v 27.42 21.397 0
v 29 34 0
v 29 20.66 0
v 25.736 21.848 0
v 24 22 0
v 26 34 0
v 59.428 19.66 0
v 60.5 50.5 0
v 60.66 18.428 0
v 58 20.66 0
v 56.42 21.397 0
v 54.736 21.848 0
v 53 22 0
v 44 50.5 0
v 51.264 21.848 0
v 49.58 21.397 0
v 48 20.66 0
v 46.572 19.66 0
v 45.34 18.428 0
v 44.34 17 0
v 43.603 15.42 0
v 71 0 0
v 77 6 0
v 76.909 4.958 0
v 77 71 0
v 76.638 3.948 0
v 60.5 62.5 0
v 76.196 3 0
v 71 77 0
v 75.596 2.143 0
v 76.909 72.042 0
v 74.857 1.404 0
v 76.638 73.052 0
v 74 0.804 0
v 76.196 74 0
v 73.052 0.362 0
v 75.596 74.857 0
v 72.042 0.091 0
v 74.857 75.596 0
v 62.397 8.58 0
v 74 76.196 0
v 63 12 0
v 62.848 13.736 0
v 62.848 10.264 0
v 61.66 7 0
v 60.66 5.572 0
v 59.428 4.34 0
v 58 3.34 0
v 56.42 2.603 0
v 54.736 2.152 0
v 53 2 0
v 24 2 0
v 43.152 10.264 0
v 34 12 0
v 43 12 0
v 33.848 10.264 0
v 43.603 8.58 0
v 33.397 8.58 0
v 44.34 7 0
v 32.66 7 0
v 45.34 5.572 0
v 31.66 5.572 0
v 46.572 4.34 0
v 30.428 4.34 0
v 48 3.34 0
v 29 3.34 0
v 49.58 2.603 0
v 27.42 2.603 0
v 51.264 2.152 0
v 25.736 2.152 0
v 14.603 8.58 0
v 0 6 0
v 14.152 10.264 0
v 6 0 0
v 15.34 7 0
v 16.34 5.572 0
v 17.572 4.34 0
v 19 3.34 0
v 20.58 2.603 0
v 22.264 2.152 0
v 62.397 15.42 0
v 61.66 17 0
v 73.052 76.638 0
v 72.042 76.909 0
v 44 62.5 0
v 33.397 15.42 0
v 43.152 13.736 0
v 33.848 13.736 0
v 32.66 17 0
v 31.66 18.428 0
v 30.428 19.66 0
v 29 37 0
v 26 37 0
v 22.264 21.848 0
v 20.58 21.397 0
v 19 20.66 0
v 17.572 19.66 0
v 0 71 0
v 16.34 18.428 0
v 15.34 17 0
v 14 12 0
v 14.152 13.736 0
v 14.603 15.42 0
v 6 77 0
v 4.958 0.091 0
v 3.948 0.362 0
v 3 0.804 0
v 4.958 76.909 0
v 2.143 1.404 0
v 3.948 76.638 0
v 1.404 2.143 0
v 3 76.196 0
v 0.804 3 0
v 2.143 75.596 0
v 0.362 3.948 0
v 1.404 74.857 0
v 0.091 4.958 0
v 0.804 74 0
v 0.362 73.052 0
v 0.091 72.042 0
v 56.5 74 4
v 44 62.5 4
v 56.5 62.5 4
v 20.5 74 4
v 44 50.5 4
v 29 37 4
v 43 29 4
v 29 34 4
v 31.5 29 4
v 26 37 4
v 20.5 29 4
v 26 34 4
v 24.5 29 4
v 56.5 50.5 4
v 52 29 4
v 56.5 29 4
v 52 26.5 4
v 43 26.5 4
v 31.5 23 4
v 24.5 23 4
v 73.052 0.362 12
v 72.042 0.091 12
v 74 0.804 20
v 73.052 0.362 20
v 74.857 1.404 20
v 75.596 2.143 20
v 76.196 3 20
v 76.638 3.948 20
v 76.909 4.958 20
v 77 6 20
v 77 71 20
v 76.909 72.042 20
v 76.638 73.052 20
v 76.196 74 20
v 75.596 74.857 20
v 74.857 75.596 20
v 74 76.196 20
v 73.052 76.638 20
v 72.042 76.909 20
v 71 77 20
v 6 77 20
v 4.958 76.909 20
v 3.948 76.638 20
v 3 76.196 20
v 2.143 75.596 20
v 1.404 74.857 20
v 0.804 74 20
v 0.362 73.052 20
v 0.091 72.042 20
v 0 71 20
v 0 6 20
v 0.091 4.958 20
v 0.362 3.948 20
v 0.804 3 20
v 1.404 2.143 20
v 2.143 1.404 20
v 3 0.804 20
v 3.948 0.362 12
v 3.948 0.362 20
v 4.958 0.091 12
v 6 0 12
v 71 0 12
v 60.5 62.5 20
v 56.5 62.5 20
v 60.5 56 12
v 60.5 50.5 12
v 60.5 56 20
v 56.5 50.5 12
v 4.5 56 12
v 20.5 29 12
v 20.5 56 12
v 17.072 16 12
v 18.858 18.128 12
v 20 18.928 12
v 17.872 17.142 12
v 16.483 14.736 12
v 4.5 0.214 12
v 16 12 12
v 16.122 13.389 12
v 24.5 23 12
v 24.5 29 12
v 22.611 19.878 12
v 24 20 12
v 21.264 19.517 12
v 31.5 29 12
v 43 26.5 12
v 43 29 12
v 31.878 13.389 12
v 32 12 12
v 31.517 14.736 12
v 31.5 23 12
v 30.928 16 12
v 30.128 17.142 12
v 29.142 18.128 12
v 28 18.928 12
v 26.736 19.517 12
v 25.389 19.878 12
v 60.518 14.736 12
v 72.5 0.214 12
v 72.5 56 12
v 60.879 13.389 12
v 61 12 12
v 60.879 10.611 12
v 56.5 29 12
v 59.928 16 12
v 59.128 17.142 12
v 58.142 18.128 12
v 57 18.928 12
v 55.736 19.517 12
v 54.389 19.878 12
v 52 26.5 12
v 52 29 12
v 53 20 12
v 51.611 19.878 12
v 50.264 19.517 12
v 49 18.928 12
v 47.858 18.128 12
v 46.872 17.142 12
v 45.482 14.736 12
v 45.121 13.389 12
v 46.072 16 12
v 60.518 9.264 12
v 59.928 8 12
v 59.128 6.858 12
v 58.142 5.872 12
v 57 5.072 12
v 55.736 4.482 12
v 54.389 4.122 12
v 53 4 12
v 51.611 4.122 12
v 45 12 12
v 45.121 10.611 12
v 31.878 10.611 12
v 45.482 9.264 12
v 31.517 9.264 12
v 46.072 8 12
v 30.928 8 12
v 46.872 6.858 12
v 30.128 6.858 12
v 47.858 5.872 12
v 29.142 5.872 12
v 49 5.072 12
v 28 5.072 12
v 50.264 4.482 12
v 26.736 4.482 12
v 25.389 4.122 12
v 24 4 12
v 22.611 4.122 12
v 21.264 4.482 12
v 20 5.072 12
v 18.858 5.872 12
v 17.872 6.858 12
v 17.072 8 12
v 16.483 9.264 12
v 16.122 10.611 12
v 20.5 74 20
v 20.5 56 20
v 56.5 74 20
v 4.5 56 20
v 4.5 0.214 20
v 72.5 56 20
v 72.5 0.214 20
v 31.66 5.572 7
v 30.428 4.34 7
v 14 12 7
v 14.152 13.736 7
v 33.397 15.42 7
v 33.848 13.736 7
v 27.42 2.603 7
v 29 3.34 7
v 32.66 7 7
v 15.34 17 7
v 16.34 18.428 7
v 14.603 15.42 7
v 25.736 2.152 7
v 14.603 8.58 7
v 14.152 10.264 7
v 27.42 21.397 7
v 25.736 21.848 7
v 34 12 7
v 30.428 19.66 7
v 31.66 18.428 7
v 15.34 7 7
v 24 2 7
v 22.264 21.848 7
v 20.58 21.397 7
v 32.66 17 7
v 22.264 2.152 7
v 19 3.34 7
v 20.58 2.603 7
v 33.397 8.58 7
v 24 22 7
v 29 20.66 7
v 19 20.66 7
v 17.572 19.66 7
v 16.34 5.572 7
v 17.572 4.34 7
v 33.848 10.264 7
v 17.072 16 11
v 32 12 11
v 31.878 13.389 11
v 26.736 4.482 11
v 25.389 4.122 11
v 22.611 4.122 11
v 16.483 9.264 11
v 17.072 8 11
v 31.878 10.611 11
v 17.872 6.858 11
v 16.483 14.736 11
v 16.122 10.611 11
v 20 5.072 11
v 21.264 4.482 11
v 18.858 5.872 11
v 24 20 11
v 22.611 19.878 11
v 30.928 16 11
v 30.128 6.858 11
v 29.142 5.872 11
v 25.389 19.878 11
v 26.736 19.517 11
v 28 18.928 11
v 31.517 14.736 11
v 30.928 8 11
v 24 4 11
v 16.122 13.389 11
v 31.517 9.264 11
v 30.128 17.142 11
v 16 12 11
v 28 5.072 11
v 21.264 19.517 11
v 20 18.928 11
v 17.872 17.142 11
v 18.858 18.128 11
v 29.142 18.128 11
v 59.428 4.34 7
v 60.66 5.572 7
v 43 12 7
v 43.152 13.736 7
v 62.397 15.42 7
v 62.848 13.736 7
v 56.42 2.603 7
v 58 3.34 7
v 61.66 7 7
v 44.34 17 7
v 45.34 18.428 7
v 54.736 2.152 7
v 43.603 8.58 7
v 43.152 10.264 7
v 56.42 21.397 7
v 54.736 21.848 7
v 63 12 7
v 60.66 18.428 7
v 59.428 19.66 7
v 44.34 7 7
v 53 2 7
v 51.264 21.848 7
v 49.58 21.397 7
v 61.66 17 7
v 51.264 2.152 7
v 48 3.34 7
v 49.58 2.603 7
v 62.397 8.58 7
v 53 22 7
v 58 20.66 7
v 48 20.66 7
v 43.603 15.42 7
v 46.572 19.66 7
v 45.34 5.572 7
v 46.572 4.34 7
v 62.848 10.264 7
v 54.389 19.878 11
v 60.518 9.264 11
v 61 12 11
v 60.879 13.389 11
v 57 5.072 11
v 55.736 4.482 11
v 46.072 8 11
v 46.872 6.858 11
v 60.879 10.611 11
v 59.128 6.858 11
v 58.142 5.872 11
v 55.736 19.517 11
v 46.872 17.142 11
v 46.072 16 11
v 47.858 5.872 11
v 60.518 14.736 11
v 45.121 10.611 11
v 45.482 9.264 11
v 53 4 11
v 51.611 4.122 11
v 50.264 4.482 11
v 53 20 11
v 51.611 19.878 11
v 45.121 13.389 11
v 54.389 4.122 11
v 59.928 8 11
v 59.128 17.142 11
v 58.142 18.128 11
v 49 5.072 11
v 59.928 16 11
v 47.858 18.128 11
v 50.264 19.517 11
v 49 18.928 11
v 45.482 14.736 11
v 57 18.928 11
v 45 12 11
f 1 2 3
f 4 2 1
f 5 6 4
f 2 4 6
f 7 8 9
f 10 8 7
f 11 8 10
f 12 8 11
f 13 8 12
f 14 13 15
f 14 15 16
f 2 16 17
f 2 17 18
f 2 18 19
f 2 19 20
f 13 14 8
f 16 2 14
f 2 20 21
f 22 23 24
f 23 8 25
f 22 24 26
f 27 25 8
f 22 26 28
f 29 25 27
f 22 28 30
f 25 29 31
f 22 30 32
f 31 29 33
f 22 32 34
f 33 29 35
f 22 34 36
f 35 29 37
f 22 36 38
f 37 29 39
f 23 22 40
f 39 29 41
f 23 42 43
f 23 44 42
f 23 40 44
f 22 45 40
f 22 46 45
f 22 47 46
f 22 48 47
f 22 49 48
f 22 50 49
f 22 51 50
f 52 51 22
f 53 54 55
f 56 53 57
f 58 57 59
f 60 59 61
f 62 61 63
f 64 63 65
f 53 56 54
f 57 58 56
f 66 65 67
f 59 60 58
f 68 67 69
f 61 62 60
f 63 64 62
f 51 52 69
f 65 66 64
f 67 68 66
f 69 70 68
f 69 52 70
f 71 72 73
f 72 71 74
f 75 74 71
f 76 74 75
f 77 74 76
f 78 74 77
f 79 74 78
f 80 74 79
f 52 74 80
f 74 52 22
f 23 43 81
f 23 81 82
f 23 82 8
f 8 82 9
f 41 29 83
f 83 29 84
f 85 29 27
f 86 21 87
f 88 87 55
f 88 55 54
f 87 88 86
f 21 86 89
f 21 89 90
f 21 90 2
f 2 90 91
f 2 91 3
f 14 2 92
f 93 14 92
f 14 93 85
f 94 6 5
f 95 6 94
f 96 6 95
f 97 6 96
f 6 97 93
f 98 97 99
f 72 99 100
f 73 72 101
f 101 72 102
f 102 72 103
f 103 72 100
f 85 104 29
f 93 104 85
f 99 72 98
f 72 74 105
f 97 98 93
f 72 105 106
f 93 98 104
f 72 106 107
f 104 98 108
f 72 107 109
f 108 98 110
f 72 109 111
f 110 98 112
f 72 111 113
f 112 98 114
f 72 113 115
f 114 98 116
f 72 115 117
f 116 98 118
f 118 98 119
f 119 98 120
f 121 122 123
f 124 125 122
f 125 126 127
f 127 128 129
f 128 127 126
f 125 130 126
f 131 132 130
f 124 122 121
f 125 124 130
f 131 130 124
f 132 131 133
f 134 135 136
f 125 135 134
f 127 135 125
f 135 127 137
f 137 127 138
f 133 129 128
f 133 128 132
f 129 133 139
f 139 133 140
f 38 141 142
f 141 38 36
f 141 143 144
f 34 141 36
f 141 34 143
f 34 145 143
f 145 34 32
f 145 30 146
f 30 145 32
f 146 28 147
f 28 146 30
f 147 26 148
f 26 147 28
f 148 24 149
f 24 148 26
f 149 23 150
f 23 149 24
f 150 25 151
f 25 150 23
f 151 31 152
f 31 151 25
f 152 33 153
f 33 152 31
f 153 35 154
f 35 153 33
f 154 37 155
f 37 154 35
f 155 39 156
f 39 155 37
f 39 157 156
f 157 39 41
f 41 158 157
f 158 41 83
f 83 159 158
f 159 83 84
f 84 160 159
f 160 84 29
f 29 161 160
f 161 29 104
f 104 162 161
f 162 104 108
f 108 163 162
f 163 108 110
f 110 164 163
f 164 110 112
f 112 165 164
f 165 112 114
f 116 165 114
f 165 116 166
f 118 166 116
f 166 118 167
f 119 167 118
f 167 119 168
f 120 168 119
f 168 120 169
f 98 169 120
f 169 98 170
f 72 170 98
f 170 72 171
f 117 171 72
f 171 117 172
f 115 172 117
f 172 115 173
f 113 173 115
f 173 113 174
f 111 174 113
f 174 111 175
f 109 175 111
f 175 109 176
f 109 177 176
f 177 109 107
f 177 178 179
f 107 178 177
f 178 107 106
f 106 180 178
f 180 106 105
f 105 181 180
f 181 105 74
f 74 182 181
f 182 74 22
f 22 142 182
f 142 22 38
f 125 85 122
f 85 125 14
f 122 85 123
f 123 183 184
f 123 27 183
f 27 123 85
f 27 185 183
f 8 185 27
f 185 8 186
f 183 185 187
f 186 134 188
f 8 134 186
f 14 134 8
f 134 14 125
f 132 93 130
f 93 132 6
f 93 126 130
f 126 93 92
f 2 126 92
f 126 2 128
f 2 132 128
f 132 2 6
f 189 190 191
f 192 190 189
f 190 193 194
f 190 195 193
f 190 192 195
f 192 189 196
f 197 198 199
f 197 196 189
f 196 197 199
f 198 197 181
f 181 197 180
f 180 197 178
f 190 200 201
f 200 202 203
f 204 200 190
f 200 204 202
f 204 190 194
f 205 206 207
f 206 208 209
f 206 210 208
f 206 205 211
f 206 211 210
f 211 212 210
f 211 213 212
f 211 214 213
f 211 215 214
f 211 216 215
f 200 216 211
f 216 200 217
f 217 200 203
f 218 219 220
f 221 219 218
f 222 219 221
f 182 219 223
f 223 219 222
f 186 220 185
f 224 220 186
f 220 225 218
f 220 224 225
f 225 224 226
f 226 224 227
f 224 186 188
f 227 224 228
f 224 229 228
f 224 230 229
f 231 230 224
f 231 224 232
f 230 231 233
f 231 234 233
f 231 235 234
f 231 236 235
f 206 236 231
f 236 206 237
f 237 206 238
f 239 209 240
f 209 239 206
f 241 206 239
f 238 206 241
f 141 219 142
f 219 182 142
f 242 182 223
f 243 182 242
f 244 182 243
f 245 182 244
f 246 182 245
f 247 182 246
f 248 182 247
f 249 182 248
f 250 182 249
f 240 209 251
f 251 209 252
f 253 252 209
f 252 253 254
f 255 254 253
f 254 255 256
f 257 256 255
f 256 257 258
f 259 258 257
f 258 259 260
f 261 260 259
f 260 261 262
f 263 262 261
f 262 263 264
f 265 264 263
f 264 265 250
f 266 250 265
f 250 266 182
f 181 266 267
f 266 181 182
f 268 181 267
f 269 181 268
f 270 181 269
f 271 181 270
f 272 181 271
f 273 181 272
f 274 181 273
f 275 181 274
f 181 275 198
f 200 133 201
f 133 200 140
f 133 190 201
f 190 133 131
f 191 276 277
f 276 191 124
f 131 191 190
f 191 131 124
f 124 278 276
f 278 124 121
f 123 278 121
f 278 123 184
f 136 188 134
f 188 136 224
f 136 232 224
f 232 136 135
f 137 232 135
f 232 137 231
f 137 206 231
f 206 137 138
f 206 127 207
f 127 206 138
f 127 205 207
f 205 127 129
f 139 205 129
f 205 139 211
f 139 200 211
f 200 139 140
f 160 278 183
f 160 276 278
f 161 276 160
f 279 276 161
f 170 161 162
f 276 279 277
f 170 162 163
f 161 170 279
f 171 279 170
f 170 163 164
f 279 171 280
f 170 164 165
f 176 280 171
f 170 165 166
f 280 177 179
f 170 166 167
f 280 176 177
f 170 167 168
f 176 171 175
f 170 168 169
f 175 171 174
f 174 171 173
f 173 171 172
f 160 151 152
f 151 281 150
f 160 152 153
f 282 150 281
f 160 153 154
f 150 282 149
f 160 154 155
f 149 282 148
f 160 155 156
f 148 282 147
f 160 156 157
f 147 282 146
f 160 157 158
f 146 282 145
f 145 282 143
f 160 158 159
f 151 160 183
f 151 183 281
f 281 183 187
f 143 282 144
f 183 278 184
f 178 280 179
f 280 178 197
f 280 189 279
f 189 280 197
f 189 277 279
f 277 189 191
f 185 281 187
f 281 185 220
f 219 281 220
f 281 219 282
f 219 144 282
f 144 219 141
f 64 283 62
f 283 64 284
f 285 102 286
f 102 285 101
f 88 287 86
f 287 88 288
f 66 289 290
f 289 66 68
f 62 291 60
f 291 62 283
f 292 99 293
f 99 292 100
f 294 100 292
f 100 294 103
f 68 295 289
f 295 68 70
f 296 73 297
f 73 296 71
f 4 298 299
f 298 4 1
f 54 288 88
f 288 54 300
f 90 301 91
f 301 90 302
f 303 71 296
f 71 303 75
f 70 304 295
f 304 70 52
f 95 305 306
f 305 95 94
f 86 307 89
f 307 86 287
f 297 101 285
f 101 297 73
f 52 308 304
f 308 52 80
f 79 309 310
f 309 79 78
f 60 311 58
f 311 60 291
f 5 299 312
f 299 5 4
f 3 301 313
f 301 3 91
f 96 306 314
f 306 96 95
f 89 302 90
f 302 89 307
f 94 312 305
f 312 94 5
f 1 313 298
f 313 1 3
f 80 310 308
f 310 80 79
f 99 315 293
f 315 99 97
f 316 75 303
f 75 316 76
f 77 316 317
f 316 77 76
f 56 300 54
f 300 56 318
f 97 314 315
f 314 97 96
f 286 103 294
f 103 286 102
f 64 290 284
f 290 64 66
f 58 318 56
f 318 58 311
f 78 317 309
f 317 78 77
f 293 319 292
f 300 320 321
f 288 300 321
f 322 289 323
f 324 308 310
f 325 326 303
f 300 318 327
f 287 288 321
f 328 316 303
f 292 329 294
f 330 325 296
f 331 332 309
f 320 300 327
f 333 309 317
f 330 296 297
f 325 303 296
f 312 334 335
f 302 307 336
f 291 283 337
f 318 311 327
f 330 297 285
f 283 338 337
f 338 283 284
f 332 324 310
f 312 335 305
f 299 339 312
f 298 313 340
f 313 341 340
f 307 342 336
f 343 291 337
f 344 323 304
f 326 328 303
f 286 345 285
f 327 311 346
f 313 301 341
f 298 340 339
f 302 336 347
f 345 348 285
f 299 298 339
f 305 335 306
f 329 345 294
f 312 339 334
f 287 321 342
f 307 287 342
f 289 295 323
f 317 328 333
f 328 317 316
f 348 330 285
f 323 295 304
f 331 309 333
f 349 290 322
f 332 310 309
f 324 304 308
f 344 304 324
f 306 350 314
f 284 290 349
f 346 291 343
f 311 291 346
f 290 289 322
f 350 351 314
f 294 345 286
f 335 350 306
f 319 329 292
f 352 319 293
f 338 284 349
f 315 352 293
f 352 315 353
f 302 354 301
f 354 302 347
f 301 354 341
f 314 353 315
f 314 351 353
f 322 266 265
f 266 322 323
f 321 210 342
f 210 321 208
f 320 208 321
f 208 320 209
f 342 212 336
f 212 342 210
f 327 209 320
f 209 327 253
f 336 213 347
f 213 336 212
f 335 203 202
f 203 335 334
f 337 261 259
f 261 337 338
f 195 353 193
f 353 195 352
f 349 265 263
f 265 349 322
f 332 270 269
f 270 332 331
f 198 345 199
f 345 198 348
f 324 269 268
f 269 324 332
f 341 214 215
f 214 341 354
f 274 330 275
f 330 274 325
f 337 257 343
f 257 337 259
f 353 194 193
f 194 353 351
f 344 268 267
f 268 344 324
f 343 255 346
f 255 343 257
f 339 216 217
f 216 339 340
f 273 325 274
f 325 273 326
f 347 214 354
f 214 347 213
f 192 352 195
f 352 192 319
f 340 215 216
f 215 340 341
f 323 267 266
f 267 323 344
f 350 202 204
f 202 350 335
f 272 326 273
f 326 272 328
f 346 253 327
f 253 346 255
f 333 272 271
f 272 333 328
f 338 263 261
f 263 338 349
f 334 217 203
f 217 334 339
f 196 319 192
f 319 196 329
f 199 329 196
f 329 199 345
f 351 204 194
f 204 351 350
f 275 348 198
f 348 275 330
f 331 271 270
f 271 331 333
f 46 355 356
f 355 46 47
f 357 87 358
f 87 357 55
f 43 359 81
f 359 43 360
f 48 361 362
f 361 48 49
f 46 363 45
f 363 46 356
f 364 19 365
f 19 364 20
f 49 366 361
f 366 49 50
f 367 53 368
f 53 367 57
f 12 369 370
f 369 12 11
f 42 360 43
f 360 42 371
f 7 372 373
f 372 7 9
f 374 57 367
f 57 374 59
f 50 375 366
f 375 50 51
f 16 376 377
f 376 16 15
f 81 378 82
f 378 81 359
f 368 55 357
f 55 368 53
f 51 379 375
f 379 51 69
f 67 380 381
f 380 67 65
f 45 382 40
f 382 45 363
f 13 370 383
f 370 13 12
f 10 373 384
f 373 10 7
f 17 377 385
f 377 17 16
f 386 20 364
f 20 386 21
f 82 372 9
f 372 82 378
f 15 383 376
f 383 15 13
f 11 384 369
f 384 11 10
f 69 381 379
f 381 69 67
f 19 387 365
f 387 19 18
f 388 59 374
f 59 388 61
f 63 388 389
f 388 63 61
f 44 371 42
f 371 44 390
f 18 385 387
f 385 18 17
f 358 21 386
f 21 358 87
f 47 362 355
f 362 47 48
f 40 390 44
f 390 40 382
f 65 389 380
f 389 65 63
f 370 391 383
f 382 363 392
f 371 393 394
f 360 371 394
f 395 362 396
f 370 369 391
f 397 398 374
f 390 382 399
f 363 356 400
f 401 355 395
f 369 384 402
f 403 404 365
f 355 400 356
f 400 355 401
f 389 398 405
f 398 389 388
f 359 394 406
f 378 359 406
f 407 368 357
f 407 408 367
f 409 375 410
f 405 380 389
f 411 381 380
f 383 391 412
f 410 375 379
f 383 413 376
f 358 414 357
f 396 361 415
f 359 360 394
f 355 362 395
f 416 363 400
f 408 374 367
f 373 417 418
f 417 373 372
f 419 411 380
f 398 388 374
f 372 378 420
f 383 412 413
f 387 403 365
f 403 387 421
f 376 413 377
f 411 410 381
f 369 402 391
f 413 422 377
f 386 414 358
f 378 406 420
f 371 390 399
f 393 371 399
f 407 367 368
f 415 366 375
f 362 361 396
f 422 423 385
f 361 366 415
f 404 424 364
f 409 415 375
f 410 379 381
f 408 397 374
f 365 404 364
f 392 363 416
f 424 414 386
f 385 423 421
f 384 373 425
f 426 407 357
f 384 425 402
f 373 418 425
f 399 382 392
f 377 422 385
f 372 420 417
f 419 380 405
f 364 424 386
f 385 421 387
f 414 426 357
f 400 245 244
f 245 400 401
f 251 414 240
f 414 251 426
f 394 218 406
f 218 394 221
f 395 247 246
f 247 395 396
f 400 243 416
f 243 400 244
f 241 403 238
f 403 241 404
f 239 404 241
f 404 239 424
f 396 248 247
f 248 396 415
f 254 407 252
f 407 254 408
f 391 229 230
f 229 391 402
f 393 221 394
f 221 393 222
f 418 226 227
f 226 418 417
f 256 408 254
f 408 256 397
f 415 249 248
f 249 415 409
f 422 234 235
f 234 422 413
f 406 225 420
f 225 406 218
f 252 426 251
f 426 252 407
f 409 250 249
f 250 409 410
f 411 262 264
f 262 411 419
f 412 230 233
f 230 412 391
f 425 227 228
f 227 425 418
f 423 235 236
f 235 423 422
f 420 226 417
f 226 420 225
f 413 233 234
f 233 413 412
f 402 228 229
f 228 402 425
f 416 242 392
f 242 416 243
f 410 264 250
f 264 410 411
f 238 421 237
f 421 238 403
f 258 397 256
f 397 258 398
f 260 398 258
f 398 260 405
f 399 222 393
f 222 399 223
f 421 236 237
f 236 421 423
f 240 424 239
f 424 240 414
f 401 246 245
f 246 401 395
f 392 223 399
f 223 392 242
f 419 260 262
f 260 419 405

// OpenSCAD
// CC BY-SA, FHNW (University of Applied Sciences and Arts Northwestern Switzerland)

$fn = 36;

layer = 3; // 0-3
r = .1;

module layer3d(layer) {
difference() {
  hull() {
    translate([6, 6]) {
      translate([0, 0]) {
        circle(6);
      }
      translate([77 - 2 * 6, 0]) {
        circle(6);
      }
      translate([77 - 2 * 6, 77 - 2 * 6]) {
        circle(6);
      }
      translate([0, 77 - 2 * 6]) {
        circle(6);
      }
    }
  }
    if (layer >= 0) {
      translate([44, 77.5 - 15 - 12]) {
        square([16.5, 12]);
      }
      translate([26, 77 - 40 - 3]) {
        square([3, 3]);
      }
    }
    if (layer >= 1) {
      translate([20.5, 77 - 45 - 3]) {
        square([36, 45]);
      }
      translate([25 - 0.5, 77 - 45 - 3 - 6]) {
        square([7, 6]);
      }
      translate([20.5 + 36 - 5 - 8.5, 77 - 45 - 3 - 2.5]) {
        square([9, 2.5]);
      }
    }
    if (layer >= 2) {
      translate([(77 - 68) / 2, 0]) {
        square([68, 56]);
      }
    }
  }
}

difference() {
  union() {
    translate([0, 0, 0]) linear_extrude(4) layer3d(0);
    translate([0, 0, 4]) linear_extrude(8) layer3d(1);
    translate([0, 0, 12]) linear_extrude(8) layer3d(2);
  }
  translate([24, 12, -1]) cylinder(8, 10, 10);
  translate([24, 12, -1 + 8]) cylinder(4, 10, 8);
  translate([24, 12, -1 + 12]) cylinder(2, 8, 8);
  translate([77 - 24, 12, -1]) cylinder(8, 10, 10);
  translate([77 - 24, 12, -1 + 8]) cylinder(4, 10, 8);
  translate([77 - 24, 12, -1 + 12]) cylinder(2, 8, 8);
}
